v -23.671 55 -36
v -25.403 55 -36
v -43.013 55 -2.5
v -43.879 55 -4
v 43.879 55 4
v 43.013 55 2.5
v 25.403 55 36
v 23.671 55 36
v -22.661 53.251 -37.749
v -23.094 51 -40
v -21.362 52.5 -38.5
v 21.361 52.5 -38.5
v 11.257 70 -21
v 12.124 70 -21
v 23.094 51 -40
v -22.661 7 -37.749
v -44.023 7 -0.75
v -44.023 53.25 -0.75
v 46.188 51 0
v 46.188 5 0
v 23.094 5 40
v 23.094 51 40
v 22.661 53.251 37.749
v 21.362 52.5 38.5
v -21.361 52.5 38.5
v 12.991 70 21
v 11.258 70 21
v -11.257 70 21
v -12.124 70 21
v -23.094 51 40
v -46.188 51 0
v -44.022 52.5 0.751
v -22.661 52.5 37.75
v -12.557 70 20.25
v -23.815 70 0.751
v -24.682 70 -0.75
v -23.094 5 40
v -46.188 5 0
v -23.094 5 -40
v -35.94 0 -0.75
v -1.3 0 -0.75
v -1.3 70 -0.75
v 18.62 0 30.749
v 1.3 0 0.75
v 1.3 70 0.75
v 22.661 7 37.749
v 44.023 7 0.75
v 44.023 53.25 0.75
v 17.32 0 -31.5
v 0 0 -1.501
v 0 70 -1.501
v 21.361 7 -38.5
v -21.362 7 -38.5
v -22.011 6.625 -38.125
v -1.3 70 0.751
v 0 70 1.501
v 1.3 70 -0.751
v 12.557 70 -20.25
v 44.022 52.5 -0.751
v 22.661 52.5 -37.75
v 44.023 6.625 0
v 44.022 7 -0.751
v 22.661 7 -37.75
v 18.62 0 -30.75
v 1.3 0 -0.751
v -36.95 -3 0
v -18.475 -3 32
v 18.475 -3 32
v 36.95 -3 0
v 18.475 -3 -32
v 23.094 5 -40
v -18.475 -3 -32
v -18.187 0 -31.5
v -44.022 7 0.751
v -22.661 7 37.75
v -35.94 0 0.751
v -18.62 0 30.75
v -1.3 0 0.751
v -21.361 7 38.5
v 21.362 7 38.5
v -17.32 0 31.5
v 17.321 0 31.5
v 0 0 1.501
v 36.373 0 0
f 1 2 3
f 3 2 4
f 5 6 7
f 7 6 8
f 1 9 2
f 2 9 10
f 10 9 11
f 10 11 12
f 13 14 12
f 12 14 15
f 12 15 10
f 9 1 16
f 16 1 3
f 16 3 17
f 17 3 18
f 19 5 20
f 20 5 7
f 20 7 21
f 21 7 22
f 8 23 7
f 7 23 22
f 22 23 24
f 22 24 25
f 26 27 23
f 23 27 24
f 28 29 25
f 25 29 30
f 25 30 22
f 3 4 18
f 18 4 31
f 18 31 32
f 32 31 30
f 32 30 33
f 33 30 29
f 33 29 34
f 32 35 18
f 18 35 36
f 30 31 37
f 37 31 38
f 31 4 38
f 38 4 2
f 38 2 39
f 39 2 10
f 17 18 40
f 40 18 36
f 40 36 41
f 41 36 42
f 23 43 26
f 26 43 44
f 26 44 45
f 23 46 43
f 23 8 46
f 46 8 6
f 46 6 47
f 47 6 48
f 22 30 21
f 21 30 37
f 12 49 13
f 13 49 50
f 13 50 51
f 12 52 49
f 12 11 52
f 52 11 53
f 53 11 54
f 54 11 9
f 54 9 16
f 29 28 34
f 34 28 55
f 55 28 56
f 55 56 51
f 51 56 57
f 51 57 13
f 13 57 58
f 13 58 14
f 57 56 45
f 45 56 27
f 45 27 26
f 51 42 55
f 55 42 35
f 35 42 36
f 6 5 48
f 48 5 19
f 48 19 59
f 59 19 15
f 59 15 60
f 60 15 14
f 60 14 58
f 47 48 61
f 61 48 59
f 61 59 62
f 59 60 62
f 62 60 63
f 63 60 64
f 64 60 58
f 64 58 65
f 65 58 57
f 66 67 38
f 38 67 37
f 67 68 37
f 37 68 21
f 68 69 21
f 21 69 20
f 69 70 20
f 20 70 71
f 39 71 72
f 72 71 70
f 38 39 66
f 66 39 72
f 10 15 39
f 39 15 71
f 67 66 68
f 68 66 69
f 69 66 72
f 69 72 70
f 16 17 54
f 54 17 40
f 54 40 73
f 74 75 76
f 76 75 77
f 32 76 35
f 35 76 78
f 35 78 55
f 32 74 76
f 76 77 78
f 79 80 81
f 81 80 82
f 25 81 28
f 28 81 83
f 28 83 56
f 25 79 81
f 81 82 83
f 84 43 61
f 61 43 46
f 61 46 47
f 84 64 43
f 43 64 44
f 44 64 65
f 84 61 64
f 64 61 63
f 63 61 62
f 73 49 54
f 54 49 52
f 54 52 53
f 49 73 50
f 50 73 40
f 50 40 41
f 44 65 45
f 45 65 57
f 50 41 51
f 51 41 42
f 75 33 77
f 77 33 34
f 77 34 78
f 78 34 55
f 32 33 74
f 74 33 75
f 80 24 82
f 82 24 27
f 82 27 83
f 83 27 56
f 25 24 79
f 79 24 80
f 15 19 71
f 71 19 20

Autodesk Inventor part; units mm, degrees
ref_plane "YZ Plane" through (0, 0, 0) normal (1, 0, 0) x (0, 1, 0)
ref_plane "XZ Plane" through (0, 0, 0) normal (0, 1, 0) x (-1, 0, 0)
ref_plane "XY Plane" through (0, 0, 0) normal (0, 0, 1) x (1, 0, 0)
sketch "Sketch1" plane through (0, 0, 0) normal (0, 1, 0) x (-1, 0, 0)
  line L0 (-23.094, 40) -> (23.094, 40)
  line L1 (23.094, 40) -> (46.188, 0)
  line L2 (46.188, 0) -> (23.094, -40)
  line L3 (23.094, -40) -> (-23.094, -40)
  line L4 (-23.094, -40) -> (-46.188, 0)
  line L5 (-46.188, 0) -> (-23.094, 40)
  line L6 (0, 0) -> (62.8108, 0)
  line L7 (22.6615, -37.7492) -> (1.3, -0.75)
  line L8 (44.023, -0.75) -> (22.6615, -37.7492)
  line L9 (23.094, -40) -> (0, 0) construction
  line L10 (44.023, -0.75) -> (1.3, -0.75)
  line L11 (22.661, 37.75) -> (44.0225, 0.7508)
  line L12 (44.0225, 0.7508) -> (1.2995, 0.7508)
  line L13 (22.661, 37.75) -> (1.2995, 0.7508)
  line L14 (-21.362, 38.5) -> (21.361, 38.5)
  line L15 (21.361, 38.5) -> (-0.0005, 1.5008)
  line L16 (-21.362, 38.5) -> (-0.0005, 1.5008)
  line L17 (-44.023, 0.75) -> (-22.6615, 37.7492)
  line L18 (-22.6615, 37.7492) -> (-1.3, 0.75)
  line L19 (-44.023, 0.75) -> (-1.3, 0.75)
  line L20 (-22.661, -37.75) -> (-44.0225, -0.7508)
  line L21 (-44.0225, -0.7508) -> (-1.2995, -0.7508)
  line L22 (-22.661, -37.75) -> (-1.2995, -0.7508)
  line L23 (21.362, -38.5) -> (-21.361, -38.5)
  line L24 (-21.361, -38.5) -> (0.0005, -1.5008)
  line L25 (21.362, -38.5) -> (0.0005, -1.5008)
  point P0 (0, 0)
  point P1 (0, 0)
  dimension "d6" = 60
  dimension "d7" = 0.75
  dimension "d8" = 1.5
  dimension "d9" = 1.3
  dimension "d10" = 80
  dimension "d13" = 360
extrude "Extrusion1" add sketch "Sketch1" along normal blind 70
sketch "Sketch2" plane through (0, 0, 0) normal (0, -1, 0) x (1, 0, 0)
  line L0 (23.094, 40) -> (46.188, 0) projected
  line L1 (-23.094, 40) -> (23.094, 40) projected
  line L2 (-46.188, 0) -> (-23.094, 40) projected
  line L3 (-23.094, -40) -> (-46.188, 0) projected
  line L4 (23.094, -40) -> (-23.094, -40) projected
  line L5 (46.188, 0) -> (23.094, -40) projected
  line L6 (-21.362, -38.5) -> (21.361, -38.5) projected
  line L7 (-0.0005, -1.5008) -> (-21.362, -38.5) projected
  line L8 (21.361, -38.5) -> (-0.0005, -1.5008) projected
  line L9 (22.661, -37.75) -> (44.0225, -0.7508) projected
  line L10 (1.2995, -0.7508) -> (22.661, -37.75) projected
  line L11 (44.0225, -0.7508) -> (1.2995, -0.7508) projected
  line L12 (44.023, 0.75) -> (22.6615, 37.7492) projected
  line L13 (1.3, 0.75) -> (44.023, 0.75) projected
  line L14 (22.6615, 37.7492) -> (1.3, 0.75) projected
  line L15 (21.362, 38.5) -> (-21.361, 38.5) projected
  line L16 (0.0005, 1.5008) -> (21.362, 38.5) projected
  line L17 (-21.361, 38.5) -> (0.0005, 1.5008) projected
  line L18 (-22.661, 37.75) -> (-44.0225, 0.7508) projected
  line L19 (-1.2995, 0.7508) -> (-22.661, 37.75) projected
  line L20 (-44.0225, 0.7508) -> (-1.2995, 0.7508) projected
  line L21 (-44.023, -0.75) -> (-22.6615, -37.7492) projected
  line L22 (-1.3, -0.75) -> (-44.023, -0.75) projected
  line L23 (-22.6615, -37.7492) -> (-1.3, -0.75) projected
  point P0 (0, 0)
extrude "Extrusion2" add sketch "Sketch2" along normal blind 3 contours L0 L5 L4 L3 L2 L1 | L7 L8 L6 | L10 L11 L9 | L13 L14 L12 | L16 L17 L15 | L19 L20 L18 | L22 L23 L21
sketch "Sketch4" plane through (0, 70, 0) normal (0, 1, 0) x (1, 0, 0)
  line L0 (23.094, -40) -> (46.188, 0) projected
  line L1 (46.188, 0) -> (23.094, 40) projected
  line L2 (23.094, 40) -> (-23.094, 40) projected
  line L3 (-23.094, 40) -> (-46.188, 0) projected
  line L4 (-46.188, 0) -> (-23.094, -40) projected
  line L5 (-23.094, -40) -> (23.094, -40) projected
  line L6 (-21.362, 38.5) -> (21.361, 38.5) projected
  line L7 (21.361, 38.5) -> (-0.0005, 1.5008) projected
  line L8 (-0.0005, 1.5008) -> (-21.362, 38.5) projected
  line L9 (22.661, 37.75) -> (44.0225, 0.7508) projected
  line L10 (44.0225, 0.7508) -> (1.2995, 0.7508) projected
  line L11 (1.2995, 0.7508) -> (22.661, 37.75) projected
  line L12 (44.023, -0.75) -> (22.6615, -37.7492) projected
  line L13 (22.6615, -37.7492) -> (1.3, -0.75) projected
  line L14 (1.3, -0.75) -> (44.023, -0.75) projected
  line L15 (21.362, -38.5) -> (-21.361, -38.5) projected
  line L16 (-21.361, -38.5) -> (0.0005, -1.5008) projected
  line L17 (0.0005, -1.5008) -> (21.362, -38.5) projected
  line L18 (-22.661, -37.75) -> (-44.0225, -0.7508) projected
  line L19 (-44.0225, -0.7508) -> (-1.2995, -0.7508) projected
  line L20 (-1.2995, -0.7508) -> (-22.661, -37.75) projected
  line L21 (-44.023, 0.75) -> (-22.6615, 37.7492) projected
  line L22 (-22.6615, 37.7492) -> (-1.3, 0.75) projected
  line L23 (-1.3, 0.75) -> (-44.023, 0.75) projected
  line L24 (-1.3, 0.75) -> (-44.023, 0.75) projected
  line L25 (-1.3, 0.75) -> (-0.0005, 1.5008)
  line L26 (-44.023, 0.75) -> (-22.6615, 37.7492) projected
  line L27 (-21.362, 38.5) -> (21.361, 38.5) projected
  line L28 (-22.6615, 37.7492) -> (-21.362, 38.5)
extrude "Extrusion3" cut sketch "Sketch4" against normal up to surface (70 mm away) contours L8 L25 L22 L28
pattern_circular "Circular Pattern1" count 2 over 240 about axis through (0, -10, 0) along (0, 1, 0) of "Extrusion3"
chamfer "Chamfer2" distance 7 angle 45 6 edges at (-0.0005, 0, -38.5) (33.3417, 0, -19.2504) (33.3422, 0, 19.2496) (0.0005, 0, 38.5) (-33.3417, 0, 19.2504) (-33.3422, 0, -19.2496)
chamfer "Chamfer1" distance 8 angle 45 6 edges at (34.641, -3, -20) (34.641, -3, 20) (0, -3, 40) (-34.641, -3, 20) (-34.641, -3, -20) (0, -3, -40)
chamfer "Chamfer3" distance 19 angle 45 2 edges at (34.641, 70, -20) (0, 70, -40)
chamfer "Chamfer4" distance 19 angle 45 2 edges at (0, 70, 40) (-34.641, 70, 20)
sketch "Sketch5" plane through (0, 70, 0) normal (0, 1, 0) x (1, 0, 0)
  line L0 (34.0637, -21) -> (32.3316, -21) projected
  line L1 (34.0637, -21) -> (35.2184, -19) projected
  line L2 (34.3523, -17.5) -> (35.2184, -19) projected
  line L3 (34.3523, -17.5) -> (32.3316, -21) projected
  line L4 (-34.3523, 17.5) -> (-35.2184, 19) projected
  line L5 (-34.3523, 17.5) -> (-32.3316, 21) projected
  line L6 (-34.0637, 21) -> (-32.3316, 21) projected
  line L7 (-34.0637, 21) -> (-35.2184, 19) projected
  line L8 (-23.094, 40) -> (-34.0637, 21) projected
  line L9 (-34.0637, 21) -> (-32.3316, 21) projected
  line L10 (-32.3316, 21) -> (-22.6615, 37.7492) projected
  line L11 (-22.6615, 37.7492) -> (-21.362, 38.5) projected
  line L12 (-21.362, 38.5) -> (21.361, 38.5) projected
  line L13 (21.361, 38.5) -> (11.2574, 21) projected
  line L14 (11.2574, 21) -> (12.1244, 21) projected
  line L15 (12.1244, 21) -> (23.094, 40) projected
  line L16 (23.094, 40) -> (-23.094, 40) projected
  line L17 (-35.2184, 19) -> (-46.188, 0) projected
  line L18 (-46.188, 0) -> (-23.094, -40) projected
  line L19 (-23.094, -40) -> (-12.1244, -21) projected
  line L20 (-12.1244, -21) -> (-12.5574, -20.25) projected
  line L21 (-12.5574, -20.25) -> (-22.661, -37.75) projected
  line L22 (-22.661, -37.75) -> (-44.0225, -0.7508) projected
  line L23 (-44.0225, -0.7508) -> (-23.8152, -0.7508) projected
  line L24 (-23.8152, -0.7508) -> (-24.6817, 0.75) projected
  line L25 (-24.6817, 0.75) -> (-44.023, 0.75) projected
  line L26 (-44.023, 0.75) -> (-34.3523, 17.5) projected
  line L27 (-34.3523, 17.5) -> (-35.2184, 19) projected
  line L28 (12.1244, 21) -> (23.094, 40) projected
  line L29 (12.1244, 21) -> (12.5574, 20.25) projected
  line L30 (12.5574, 20.25) -> (22.661, 37.75) projected
  line L31 (22.661, 37.75) -> (44.0225, 0.7508) projected
  line L32 (44.023, -0.75) -> (34.3523, -17.5) projected
  line L33 (34.3523, -17.5) -> (35.2184, -19) projected
  line L34 (35.2184, -19) -> (46.188, 0) projected
  line L35 (46.188, 0) -> (23.094, 40) projected
  line L36 (-23.094, -40) -> (-12.1244, -21) projected
  line L37 (-23.094, -40) -> (23.094, -40) projected
  line L38 (23.094, -40) -> (34.0637, -21) projected
  line L39 (34.0637, -21) -> (32.3316, -21) projected
  line L40 (32.3316, -21) -> (22.6615, -37.7492) projected
  line L41 (22.6615, -37.7492) -> (12.9913, -21) projected
  line L42 (12.9913, -21) -> (11.2583, -21) projected
  line L43 (11.2583, -21) -> (21.362, -38.5) projected
  line L44 (21.362, -38.5) -> (-21.361, -38.5) projected
  line L45 (-21.361, -38.5) -> (-11.2574, -21) projected
  line L46 (-11.2574, -21) -> (-12.1244, -21) projected
  line L47 (44.023, -0.75) -> (45.755, -0.75)
  line L48 (22.6615, -37.7492) -> (23.5275, -39.2492)
  line L49 (-22.6615, 37.7492) -> (-23.5275, 39.2492)
  line L50 (-44.023, 0.75) -> (-45.755, 0.75)
  line L51 (0.0005, -1.5008) -> (11.2583, -21) projected
  line L52 (44.0225, 0.7508) -> (44.023, -0.75) projected
  point P0 (0, 0)
extrude "Extrusion4" cut sketch "Sketch5" against normal blind 15 contours L38 L48 L40 L0 | L0 L3 L2 L1 | L2 L32 L47 L34 | L17 L4 L26 L50 | L49 L10 L6 L8 | L7 L6 L5 L4
sketch "Sketch6" plane through (0, 70, 0) normal (0, 1, 0) x (1, 0, 0)
  circle A0 centre (-14.6939, 17.2494) radius 16
  ellipse E0 centre (24.2145, -2.943) end of major axis (24.1547, -26.9429) minor radius 17.5
  point P0 (0, 0)
  dimension "d37" = 24
  dimension "d38" = 17.5
  dimension "d36" = 32
properties part number "pen-pot"
